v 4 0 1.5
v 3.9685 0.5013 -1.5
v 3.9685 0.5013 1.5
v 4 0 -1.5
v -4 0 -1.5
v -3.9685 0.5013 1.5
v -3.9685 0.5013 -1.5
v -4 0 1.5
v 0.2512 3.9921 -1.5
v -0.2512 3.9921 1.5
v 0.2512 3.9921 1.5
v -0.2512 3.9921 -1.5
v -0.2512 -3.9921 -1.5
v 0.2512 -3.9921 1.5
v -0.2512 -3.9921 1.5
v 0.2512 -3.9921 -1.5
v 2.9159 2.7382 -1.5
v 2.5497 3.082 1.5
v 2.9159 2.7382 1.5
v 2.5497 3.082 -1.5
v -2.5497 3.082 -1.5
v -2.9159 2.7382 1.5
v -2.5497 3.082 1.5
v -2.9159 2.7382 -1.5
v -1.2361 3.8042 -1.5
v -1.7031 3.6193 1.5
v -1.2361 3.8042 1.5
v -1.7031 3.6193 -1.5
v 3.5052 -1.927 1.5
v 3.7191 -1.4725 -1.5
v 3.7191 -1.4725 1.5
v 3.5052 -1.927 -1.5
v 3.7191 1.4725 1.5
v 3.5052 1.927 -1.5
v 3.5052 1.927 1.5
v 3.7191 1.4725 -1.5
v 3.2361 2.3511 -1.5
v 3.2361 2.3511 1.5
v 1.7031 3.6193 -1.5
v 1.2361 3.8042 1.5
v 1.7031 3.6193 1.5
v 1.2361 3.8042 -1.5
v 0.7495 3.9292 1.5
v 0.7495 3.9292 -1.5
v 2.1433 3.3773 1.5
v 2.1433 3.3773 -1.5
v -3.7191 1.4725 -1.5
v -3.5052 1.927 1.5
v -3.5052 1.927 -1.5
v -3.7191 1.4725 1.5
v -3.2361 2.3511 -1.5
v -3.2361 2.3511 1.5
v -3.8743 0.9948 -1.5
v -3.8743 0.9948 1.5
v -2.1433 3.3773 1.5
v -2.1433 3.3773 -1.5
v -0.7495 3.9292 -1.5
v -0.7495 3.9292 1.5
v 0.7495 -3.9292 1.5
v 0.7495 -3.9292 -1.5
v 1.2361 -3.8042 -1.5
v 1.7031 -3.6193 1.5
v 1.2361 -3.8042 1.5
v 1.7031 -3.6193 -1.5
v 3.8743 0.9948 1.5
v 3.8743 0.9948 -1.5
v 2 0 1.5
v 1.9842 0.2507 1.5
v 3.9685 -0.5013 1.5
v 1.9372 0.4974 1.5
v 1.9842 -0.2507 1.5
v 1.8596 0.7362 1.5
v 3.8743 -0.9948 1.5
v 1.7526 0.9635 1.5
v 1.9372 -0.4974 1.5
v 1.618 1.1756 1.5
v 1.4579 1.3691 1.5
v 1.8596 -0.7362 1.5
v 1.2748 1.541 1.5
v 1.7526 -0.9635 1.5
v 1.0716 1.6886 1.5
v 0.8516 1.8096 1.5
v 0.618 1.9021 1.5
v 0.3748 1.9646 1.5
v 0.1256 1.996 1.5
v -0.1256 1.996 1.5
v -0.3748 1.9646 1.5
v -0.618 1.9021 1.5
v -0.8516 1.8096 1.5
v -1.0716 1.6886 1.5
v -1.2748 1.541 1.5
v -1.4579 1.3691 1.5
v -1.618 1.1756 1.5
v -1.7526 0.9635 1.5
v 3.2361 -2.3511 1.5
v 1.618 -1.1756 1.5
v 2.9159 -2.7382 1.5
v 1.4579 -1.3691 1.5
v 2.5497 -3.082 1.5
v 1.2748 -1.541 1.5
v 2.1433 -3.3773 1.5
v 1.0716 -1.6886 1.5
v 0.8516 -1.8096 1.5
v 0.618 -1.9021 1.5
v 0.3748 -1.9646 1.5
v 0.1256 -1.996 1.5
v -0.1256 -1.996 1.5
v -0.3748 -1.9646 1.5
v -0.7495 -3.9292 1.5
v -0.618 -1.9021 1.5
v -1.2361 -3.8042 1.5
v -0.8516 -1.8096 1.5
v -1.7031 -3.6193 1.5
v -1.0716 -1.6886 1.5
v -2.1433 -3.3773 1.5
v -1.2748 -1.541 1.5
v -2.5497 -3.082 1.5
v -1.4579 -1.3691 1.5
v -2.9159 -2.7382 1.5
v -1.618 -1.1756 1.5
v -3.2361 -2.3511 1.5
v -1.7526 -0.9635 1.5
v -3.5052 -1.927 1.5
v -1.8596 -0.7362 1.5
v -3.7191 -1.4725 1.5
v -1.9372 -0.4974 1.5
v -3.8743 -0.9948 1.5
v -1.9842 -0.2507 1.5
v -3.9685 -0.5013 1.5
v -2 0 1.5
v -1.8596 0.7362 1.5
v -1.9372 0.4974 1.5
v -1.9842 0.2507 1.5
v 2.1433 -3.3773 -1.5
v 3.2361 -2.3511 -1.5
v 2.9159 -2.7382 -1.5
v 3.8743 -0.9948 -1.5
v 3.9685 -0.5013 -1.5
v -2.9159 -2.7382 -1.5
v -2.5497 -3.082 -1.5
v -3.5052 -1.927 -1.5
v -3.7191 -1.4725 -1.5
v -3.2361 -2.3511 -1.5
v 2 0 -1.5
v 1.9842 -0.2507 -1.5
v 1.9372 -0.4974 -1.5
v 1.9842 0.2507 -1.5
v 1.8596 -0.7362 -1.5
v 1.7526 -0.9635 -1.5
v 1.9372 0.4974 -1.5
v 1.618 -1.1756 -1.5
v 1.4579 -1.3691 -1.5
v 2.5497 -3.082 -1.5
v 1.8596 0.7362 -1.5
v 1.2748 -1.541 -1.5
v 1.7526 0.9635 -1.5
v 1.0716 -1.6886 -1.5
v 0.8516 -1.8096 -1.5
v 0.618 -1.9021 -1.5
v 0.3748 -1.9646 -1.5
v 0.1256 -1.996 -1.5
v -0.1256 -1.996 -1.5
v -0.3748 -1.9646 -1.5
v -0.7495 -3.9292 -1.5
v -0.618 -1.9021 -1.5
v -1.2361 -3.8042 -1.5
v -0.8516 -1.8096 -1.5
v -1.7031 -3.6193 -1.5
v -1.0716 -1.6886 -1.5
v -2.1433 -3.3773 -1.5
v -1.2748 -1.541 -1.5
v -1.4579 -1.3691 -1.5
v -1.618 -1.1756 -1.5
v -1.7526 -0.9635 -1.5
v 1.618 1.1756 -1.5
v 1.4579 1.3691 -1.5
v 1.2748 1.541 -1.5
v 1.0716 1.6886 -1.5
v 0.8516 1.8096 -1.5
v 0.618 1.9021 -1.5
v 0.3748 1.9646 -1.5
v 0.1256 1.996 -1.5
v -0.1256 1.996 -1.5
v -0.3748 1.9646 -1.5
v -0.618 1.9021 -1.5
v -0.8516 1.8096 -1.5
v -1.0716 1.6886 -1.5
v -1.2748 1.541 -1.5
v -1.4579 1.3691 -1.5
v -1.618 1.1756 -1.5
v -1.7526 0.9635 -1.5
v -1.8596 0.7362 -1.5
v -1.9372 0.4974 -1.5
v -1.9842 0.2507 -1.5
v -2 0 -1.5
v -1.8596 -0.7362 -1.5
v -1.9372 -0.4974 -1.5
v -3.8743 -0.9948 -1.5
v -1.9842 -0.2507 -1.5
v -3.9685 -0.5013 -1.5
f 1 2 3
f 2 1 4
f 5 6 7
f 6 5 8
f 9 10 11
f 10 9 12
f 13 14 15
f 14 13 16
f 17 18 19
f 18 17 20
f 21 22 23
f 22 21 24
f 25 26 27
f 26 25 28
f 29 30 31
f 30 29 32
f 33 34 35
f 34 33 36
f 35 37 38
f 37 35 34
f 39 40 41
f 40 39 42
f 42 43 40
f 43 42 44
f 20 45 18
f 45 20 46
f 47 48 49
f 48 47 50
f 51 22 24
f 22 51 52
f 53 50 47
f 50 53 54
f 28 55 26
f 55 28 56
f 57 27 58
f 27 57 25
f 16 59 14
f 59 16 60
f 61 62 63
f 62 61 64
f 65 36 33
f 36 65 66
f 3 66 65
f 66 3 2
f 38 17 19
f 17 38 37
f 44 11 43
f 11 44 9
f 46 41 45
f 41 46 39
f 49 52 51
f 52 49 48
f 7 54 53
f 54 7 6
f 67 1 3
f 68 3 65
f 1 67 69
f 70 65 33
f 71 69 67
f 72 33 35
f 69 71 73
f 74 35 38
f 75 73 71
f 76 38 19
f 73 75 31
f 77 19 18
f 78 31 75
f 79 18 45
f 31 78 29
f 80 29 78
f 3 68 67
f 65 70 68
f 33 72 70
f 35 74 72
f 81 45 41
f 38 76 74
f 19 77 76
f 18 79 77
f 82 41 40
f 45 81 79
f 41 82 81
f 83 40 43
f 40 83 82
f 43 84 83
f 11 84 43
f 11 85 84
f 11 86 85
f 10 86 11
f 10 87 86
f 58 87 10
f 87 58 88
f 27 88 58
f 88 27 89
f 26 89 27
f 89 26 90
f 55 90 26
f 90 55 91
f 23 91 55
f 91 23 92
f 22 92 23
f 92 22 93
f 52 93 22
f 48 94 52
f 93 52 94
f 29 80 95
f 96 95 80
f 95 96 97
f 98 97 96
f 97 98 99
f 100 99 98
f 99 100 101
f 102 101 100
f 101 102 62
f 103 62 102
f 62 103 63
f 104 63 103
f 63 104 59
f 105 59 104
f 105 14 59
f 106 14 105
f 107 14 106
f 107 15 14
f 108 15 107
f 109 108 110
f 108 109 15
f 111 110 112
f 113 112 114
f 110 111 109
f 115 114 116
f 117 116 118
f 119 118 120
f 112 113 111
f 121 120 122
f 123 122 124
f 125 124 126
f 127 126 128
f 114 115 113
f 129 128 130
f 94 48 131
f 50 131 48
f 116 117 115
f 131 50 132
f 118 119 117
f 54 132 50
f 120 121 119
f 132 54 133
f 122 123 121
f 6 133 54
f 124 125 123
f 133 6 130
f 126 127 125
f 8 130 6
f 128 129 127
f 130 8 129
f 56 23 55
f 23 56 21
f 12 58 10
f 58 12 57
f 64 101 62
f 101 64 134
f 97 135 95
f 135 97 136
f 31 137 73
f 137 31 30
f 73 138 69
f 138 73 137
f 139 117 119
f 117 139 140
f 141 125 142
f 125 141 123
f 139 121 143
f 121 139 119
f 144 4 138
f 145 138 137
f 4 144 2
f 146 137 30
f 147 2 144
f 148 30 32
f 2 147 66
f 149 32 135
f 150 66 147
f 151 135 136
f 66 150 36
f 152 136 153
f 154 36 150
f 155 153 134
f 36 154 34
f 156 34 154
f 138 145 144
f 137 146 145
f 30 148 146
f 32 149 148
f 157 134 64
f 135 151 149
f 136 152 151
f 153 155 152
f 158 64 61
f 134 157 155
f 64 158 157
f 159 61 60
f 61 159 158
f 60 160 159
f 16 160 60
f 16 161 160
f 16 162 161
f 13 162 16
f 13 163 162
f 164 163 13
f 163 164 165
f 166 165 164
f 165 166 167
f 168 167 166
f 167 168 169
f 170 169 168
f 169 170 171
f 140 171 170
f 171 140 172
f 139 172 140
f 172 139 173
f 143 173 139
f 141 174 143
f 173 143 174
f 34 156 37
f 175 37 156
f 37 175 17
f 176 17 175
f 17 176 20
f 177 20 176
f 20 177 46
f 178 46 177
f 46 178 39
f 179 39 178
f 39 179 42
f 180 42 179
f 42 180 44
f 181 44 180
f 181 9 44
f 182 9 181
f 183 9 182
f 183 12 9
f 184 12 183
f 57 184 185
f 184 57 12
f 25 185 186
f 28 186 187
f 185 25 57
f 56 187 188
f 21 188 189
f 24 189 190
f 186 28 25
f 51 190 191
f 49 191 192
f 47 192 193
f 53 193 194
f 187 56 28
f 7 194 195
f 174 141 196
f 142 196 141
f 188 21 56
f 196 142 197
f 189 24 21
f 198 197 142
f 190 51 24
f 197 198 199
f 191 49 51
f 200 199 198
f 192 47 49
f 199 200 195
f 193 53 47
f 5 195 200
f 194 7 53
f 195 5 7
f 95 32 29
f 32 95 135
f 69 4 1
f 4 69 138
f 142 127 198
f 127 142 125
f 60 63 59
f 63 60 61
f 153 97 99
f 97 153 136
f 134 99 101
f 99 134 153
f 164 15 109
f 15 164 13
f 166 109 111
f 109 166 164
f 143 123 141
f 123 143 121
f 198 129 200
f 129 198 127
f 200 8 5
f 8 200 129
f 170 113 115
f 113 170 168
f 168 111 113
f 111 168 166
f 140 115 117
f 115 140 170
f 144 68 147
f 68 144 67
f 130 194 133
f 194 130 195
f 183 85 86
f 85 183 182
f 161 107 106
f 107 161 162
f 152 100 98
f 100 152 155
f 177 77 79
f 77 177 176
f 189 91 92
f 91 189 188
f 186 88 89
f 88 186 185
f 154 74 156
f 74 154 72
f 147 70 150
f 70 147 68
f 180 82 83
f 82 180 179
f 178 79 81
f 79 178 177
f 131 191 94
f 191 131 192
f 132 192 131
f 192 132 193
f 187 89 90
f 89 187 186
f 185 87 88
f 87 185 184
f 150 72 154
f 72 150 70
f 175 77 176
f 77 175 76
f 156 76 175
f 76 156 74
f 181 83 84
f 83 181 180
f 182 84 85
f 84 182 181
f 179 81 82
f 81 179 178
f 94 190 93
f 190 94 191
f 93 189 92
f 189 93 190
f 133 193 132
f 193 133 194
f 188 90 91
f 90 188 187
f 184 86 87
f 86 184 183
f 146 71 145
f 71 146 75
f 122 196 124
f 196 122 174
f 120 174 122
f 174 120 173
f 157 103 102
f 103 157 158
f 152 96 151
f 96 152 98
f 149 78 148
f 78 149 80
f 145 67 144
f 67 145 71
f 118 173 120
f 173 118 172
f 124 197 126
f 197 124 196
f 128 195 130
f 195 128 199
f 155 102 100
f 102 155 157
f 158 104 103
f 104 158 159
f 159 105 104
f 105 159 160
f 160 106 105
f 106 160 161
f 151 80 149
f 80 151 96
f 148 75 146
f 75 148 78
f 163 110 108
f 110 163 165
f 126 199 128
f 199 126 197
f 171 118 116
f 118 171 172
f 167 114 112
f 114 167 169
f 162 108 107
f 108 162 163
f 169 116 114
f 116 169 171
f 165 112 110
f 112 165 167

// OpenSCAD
$fn = 50;


difference() {
	union() {
		translate(v = [0, 0, -1.5000000000]) {
			cylinder(h = 3, r = 4.0000000000);
		}
	}
	union() {
		translate(v = [0, 0, -100.0000000000]) {
			cylinder(h = 200, r = 2);
		}
	}
}
